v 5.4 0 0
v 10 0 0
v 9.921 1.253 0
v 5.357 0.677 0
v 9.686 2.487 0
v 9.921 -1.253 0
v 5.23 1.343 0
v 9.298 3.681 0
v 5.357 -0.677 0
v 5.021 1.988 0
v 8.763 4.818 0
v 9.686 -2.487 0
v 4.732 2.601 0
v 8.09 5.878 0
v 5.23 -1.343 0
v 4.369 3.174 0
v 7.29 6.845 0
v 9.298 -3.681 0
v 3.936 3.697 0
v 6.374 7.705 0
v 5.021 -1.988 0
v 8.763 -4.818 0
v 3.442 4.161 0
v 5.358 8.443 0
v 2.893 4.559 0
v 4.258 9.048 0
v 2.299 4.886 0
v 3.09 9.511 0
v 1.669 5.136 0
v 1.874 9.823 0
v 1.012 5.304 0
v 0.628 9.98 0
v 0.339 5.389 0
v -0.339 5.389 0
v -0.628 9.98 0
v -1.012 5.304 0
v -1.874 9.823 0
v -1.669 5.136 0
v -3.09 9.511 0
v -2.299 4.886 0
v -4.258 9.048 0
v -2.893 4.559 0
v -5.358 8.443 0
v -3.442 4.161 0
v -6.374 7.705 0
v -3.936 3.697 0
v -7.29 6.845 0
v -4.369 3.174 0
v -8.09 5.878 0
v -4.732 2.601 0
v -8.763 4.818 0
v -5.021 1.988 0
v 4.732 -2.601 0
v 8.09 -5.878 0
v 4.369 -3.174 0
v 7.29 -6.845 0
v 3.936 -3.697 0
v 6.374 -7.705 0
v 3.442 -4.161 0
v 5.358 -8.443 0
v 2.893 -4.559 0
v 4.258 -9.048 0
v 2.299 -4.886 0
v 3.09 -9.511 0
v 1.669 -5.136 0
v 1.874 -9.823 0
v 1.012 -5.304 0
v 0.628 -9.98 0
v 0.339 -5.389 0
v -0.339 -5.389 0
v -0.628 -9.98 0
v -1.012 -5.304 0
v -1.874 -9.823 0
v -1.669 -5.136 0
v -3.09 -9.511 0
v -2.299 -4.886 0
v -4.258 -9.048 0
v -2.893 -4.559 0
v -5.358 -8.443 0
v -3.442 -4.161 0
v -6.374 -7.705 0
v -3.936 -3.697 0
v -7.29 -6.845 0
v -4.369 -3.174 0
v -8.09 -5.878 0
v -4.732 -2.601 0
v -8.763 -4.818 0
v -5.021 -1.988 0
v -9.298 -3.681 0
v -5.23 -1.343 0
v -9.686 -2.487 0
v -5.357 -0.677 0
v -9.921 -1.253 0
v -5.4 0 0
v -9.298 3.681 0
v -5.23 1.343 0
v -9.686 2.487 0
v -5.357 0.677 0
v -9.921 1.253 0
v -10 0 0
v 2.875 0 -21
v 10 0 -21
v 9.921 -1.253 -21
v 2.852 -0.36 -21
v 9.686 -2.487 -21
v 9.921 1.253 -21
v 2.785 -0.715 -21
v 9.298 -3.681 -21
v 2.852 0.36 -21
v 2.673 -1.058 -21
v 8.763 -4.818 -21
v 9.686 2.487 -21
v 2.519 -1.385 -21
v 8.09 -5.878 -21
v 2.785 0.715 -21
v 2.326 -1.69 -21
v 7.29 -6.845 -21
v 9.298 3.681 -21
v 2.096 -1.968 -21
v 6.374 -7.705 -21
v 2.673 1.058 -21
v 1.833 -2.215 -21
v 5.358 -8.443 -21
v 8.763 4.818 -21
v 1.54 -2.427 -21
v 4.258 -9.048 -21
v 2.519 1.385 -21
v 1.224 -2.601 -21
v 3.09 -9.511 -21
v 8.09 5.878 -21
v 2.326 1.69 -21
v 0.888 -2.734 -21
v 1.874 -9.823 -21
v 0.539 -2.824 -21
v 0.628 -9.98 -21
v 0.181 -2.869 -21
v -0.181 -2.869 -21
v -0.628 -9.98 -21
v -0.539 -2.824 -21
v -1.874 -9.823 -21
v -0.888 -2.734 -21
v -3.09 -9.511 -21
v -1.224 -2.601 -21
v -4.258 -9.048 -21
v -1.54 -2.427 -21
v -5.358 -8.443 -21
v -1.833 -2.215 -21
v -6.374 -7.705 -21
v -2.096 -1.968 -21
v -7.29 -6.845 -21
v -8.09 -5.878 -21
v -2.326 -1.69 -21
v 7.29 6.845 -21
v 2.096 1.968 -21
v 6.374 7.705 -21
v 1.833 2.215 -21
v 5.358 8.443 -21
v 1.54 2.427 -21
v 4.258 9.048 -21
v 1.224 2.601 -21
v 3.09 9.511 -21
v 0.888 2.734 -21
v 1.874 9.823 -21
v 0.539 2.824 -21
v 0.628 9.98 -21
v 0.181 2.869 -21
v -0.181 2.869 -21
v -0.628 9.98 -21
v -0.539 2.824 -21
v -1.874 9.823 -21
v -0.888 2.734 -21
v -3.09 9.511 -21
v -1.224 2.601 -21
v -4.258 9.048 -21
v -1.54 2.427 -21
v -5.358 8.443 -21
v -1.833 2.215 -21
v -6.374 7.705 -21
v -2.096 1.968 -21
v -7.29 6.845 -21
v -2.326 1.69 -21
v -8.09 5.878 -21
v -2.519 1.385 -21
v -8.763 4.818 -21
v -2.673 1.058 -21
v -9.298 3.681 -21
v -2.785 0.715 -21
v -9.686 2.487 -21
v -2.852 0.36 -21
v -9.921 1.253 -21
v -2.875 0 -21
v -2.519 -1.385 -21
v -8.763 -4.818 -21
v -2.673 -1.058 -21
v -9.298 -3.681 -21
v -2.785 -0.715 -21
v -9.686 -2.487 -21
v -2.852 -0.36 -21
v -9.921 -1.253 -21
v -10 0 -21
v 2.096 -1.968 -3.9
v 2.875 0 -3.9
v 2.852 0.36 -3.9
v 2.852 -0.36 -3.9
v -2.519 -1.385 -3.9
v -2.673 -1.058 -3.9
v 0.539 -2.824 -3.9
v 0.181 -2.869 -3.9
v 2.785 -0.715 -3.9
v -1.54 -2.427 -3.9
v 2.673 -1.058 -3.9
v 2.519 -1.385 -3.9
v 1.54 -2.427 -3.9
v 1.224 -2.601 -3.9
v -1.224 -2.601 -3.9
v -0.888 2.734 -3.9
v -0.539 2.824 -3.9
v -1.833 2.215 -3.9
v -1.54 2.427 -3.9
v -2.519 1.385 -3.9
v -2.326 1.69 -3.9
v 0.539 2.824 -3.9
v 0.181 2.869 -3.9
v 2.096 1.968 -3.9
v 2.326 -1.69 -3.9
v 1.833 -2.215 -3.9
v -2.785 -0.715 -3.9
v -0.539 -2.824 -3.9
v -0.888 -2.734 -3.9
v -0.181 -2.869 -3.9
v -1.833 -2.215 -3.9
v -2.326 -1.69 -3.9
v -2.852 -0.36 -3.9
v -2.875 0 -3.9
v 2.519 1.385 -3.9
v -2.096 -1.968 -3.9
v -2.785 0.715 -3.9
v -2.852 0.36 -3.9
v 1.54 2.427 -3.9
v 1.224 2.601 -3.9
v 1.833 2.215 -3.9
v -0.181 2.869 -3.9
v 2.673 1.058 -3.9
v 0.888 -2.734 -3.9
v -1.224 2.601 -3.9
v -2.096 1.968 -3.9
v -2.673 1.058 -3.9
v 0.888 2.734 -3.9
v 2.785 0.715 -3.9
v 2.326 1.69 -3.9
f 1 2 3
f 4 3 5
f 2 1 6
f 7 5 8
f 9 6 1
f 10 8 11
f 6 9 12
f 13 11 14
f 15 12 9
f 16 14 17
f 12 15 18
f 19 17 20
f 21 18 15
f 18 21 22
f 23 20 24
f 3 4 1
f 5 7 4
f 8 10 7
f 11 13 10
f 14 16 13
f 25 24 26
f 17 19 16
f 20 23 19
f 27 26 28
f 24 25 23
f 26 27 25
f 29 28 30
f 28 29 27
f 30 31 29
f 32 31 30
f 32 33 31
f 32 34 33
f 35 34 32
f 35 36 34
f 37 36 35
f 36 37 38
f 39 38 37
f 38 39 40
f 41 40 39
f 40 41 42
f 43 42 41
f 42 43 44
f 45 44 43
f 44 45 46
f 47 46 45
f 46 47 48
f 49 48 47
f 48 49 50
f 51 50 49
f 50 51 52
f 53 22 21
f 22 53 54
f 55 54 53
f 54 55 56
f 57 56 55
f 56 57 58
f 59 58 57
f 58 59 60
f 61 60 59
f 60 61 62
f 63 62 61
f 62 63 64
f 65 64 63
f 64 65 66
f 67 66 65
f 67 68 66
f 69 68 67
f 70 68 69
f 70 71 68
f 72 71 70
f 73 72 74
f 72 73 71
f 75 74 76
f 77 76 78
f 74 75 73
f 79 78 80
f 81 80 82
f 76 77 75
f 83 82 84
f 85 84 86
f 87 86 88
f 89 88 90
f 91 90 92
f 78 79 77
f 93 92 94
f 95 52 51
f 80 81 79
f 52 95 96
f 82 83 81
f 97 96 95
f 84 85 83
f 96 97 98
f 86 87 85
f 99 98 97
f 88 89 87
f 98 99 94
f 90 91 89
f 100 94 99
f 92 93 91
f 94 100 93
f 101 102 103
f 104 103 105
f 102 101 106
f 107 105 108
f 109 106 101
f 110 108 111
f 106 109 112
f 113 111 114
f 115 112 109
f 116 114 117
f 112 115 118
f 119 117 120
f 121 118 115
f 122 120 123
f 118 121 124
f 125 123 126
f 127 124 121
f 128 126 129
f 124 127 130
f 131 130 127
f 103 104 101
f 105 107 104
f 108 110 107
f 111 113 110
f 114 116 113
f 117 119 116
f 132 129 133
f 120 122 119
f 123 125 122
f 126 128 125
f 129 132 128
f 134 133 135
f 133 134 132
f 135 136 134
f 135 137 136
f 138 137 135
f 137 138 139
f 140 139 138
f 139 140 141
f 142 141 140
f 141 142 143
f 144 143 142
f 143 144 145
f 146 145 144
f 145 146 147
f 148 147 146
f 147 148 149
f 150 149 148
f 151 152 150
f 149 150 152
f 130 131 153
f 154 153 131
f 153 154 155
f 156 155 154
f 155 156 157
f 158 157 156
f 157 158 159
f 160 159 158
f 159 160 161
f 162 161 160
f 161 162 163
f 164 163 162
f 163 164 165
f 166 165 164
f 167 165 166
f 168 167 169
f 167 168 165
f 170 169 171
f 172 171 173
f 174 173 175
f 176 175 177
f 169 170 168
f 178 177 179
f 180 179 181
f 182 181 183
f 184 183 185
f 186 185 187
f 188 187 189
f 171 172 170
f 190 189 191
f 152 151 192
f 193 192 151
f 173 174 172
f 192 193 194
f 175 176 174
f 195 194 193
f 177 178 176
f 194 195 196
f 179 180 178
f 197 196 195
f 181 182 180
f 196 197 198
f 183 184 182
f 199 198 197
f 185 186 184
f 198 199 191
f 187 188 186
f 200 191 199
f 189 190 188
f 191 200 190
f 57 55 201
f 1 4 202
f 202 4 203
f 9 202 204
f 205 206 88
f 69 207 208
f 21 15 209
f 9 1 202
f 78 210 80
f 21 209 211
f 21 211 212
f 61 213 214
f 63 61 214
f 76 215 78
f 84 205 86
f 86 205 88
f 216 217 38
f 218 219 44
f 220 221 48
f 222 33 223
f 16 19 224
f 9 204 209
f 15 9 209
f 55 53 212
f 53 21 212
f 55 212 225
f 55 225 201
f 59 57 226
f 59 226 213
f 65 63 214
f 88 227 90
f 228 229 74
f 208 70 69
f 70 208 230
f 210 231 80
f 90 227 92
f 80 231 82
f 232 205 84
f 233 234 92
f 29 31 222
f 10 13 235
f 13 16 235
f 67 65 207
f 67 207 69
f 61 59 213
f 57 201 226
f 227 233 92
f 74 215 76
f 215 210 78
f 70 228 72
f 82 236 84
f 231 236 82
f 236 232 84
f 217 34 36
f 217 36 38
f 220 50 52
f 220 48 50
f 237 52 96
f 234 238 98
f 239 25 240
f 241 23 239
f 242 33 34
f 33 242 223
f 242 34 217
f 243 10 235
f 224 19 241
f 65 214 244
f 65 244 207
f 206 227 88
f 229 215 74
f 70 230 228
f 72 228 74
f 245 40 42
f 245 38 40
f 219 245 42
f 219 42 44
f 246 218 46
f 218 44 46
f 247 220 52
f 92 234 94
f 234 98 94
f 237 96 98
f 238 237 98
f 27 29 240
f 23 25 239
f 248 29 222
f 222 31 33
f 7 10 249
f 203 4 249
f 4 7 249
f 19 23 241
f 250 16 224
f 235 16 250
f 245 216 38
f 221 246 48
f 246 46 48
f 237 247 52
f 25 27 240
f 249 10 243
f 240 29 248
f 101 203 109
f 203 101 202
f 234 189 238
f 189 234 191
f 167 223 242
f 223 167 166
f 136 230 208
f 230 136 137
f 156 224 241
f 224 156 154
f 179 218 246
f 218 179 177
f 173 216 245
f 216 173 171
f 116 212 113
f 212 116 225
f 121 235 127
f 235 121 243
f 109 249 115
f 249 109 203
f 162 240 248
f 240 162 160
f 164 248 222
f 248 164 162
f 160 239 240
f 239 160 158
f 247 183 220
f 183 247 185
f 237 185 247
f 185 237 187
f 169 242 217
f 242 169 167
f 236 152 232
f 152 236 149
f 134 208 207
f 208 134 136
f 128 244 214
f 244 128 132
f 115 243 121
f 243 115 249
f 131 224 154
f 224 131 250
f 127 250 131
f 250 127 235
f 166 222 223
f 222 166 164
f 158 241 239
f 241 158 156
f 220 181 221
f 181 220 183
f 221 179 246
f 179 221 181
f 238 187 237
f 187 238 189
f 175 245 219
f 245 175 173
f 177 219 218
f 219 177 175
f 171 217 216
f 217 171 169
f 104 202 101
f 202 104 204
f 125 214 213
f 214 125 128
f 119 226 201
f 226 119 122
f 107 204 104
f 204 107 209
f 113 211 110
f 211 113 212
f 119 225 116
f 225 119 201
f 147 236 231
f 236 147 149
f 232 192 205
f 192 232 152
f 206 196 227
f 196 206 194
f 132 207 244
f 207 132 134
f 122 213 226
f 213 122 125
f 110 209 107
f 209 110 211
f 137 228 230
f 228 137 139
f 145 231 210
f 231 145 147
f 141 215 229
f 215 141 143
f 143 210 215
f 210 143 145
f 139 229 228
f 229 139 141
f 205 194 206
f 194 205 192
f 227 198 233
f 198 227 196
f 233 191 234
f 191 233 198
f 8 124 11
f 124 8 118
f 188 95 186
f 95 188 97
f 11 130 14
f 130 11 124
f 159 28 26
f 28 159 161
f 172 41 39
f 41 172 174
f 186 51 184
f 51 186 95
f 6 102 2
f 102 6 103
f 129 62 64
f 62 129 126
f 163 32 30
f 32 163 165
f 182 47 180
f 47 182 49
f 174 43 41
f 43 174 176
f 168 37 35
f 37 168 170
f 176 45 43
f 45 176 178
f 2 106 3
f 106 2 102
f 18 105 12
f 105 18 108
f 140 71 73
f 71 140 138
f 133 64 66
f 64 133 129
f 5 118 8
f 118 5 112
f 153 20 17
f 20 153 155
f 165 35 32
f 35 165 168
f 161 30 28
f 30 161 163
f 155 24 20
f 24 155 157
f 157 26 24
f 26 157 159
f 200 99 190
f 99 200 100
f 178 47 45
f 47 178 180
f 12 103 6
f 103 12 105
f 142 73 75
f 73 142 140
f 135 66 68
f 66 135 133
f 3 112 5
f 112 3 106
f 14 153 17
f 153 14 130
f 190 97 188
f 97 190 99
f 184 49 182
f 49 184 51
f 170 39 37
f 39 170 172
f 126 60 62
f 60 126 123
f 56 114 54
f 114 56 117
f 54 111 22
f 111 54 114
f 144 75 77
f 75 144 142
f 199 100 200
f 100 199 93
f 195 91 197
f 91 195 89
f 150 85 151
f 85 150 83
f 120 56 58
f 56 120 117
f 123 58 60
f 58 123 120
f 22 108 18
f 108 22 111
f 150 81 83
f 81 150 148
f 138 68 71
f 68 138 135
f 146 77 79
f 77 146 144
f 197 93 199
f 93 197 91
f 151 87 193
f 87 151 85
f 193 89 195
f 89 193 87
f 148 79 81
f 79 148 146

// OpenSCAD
$fn = 50;


difference() {
	union() {
		translate(v = [0, 0, -21.0000000000]) {
			cylinder(h = 21, r = 10.0000000000);
		}
		cylinder(h = 0, r = 19.0000000000);
	}
	union() {
		translate(v = [0, 0, 0]) {
			rotate(a = [0, 0, 0]) {
				difference() {
					union() {
						#translate(v = [0, 0, -21.0000000000]) {
							cylinder(h = 21, r = 2.6000000000);
						}
						#translate(v = [0, 0, -3.9000000000]) {
							cylinder(h = 3.9000000000, r1 = 2.8750000000, r2 = 5.4000000000);
						}
						#translate(v = [0, 0, -21.0000000000]) {
							cylinder(h = 21, r = 2.8750000000);
						}
						#translate(v = [0, 0, -21.0000000000]) {
							cylinder(h = 21, r = 2.6000000000);
						}
					}
					union();
				}
			}
		}
	}
}
